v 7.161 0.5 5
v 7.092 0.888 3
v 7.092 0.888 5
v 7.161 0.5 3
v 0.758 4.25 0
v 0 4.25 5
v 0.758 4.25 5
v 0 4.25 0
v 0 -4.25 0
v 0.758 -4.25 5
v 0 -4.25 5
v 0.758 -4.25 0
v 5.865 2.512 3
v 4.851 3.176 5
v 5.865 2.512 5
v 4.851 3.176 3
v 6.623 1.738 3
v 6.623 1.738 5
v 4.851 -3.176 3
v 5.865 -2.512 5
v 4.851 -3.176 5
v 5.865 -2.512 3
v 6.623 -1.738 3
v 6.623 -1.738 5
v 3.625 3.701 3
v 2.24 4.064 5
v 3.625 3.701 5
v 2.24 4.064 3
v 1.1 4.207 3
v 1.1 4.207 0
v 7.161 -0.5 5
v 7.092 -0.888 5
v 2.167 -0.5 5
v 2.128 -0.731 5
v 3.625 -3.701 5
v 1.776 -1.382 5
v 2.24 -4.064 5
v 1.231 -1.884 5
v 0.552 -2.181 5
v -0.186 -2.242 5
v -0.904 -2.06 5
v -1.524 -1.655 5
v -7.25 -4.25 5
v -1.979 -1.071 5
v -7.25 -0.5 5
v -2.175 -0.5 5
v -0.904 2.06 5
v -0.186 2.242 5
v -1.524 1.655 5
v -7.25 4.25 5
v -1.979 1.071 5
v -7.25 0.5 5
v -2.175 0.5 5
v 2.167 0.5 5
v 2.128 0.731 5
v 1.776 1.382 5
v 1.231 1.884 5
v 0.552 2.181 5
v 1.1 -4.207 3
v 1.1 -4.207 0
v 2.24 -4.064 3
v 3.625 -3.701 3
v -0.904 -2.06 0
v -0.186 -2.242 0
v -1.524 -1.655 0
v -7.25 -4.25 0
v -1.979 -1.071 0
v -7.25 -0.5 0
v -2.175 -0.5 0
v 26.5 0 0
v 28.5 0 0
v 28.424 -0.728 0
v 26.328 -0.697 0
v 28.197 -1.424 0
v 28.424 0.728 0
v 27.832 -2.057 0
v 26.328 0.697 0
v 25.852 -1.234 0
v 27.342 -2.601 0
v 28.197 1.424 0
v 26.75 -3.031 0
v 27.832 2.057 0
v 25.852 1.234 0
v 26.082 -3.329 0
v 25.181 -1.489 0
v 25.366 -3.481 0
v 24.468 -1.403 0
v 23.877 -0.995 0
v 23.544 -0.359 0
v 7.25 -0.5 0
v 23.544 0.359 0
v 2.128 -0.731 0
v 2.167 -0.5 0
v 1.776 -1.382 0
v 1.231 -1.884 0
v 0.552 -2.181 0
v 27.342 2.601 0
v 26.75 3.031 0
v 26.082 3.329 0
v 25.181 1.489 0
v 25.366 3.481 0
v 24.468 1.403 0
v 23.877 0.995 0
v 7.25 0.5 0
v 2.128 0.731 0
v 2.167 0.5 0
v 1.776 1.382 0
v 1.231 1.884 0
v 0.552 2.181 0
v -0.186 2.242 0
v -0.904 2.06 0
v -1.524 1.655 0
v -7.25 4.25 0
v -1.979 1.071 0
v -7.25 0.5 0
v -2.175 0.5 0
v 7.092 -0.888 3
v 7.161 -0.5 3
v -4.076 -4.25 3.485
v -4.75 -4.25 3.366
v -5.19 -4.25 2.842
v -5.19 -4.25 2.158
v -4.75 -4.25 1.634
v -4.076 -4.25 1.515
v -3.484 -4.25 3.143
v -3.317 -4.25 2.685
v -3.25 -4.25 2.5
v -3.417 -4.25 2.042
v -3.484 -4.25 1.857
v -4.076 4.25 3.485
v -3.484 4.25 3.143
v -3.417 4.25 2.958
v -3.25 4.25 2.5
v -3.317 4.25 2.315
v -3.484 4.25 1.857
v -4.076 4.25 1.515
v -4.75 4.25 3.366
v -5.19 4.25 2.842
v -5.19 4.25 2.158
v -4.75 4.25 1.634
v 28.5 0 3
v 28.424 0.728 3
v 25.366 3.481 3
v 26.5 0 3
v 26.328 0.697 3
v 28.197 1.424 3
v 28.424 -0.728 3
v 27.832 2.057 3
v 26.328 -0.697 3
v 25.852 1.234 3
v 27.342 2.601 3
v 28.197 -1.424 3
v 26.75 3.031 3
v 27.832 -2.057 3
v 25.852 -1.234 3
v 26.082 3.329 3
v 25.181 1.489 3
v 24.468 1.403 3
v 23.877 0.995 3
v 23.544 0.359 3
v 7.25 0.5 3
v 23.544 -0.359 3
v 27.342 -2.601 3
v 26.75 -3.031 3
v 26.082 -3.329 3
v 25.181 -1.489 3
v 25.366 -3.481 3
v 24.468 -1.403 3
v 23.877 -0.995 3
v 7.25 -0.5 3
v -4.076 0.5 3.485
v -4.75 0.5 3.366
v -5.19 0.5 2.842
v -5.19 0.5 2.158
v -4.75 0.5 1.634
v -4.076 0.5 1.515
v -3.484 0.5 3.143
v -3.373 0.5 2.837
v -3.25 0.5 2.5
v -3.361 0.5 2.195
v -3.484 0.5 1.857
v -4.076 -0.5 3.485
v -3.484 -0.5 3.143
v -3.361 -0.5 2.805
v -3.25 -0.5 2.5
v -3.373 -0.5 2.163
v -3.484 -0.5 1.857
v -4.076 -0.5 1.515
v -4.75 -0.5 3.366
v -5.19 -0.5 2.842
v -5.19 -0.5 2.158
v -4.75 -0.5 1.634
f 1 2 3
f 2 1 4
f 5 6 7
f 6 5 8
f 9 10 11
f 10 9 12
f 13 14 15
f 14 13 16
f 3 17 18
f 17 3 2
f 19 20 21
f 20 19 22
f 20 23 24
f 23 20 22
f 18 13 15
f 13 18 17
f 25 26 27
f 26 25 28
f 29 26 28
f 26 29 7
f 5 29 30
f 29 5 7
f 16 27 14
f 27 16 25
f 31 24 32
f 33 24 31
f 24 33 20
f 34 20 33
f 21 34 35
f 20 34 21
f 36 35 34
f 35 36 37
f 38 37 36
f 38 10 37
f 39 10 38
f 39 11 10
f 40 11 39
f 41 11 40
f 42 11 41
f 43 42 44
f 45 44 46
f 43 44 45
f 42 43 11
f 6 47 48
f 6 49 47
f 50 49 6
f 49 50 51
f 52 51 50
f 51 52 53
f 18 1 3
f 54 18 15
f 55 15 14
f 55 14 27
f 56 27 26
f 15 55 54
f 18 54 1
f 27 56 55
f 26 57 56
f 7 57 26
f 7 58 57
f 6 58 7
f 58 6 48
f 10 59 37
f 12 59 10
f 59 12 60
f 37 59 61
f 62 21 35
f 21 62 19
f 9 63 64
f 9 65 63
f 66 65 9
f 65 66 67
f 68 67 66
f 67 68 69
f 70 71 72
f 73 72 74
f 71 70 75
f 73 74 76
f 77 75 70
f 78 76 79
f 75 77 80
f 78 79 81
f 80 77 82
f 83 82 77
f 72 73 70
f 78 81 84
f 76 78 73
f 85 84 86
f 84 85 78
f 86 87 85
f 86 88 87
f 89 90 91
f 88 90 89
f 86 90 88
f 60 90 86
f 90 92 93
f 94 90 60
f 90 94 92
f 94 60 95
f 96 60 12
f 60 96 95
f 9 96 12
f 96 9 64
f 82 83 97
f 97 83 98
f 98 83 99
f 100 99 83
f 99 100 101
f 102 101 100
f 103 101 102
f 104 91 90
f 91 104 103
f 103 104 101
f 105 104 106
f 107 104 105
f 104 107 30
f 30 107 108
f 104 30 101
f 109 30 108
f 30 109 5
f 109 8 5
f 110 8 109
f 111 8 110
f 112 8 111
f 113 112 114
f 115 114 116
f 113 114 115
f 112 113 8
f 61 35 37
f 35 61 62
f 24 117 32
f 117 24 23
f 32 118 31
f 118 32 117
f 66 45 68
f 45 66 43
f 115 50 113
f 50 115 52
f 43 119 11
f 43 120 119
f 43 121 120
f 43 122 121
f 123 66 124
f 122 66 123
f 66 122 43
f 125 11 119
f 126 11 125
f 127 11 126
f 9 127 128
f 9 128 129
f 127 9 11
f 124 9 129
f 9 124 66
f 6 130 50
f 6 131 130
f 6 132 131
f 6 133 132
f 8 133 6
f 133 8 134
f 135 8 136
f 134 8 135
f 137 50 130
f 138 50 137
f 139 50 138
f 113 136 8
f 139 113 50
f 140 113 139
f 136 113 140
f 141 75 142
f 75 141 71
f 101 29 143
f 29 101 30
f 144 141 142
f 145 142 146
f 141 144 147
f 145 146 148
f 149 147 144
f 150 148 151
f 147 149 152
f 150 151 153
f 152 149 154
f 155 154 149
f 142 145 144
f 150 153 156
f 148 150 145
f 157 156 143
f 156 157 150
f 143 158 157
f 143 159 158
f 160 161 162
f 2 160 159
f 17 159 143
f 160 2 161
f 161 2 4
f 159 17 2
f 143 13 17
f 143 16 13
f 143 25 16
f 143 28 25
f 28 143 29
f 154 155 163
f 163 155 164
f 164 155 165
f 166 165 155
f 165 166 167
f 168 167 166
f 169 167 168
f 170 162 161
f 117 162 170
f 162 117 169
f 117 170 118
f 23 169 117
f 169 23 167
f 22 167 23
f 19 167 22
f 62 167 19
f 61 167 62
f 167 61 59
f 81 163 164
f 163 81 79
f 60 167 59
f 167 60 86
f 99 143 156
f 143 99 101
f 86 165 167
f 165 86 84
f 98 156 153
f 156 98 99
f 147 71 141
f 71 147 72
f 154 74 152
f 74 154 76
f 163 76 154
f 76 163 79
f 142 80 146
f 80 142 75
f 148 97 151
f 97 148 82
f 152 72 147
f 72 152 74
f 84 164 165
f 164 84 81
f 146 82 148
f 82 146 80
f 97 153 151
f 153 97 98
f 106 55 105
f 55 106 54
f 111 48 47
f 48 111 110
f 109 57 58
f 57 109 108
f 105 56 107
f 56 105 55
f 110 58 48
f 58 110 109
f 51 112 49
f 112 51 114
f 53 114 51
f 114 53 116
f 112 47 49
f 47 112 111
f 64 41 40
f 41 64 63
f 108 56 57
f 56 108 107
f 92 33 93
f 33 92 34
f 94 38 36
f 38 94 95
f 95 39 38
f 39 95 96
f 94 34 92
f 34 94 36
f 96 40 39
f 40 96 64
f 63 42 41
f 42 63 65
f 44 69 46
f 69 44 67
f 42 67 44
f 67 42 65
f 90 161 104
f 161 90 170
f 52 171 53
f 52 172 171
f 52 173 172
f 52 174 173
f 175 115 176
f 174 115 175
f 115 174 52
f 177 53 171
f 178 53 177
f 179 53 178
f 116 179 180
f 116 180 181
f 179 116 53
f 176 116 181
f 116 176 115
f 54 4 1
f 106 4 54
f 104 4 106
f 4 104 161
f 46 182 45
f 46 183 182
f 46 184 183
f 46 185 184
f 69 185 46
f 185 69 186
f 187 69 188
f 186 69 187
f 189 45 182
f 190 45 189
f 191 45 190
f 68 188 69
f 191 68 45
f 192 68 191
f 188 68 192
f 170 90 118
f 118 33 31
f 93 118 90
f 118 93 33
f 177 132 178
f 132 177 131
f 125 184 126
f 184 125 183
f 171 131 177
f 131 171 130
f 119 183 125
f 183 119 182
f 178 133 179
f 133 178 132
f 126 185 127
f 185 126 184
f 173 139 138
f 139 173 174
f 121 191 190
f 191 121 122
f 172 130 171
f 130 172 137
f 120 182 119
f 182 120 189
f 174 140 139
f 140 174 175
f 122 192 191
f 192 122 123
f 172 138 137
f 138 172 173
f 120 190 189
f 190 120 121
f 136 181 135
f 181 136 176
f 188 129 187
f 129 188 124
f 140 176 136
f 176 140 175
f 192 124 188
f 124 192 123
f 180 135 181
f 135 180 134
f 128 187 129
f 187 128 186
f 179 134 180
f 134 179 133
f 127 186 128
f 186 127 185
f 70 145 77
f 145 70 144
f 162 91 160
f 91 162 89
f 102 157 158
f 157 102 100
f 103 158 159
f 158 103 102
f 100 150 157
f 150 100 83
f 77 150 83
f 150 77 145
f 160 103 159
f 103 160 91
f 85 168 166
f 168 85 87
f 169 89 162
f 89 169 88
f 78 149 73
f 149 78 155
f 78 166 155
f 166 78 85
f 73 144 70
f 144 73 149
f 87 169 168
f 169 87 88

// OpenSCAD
$fs=.75;

difference(){
	union() {
		union() {
			union() {
				union() {
					resize(newsize = [14.5000000000, 8.5000000000, 0]) {
						cylinder(d = 7.2500000000, h = 5);
					}
					translate(v = [-3.6250000000, 0.0000000000, 2.5000000000]) {
						translate(v = [-3.6250000000, -4.2500000000, -2.5000000000]) {
							cube(size = [7.2500000000, 8.5000000000, 5]);
						}
					}
				}
			}
		}
		hull() {
			cylinder(h = 3, r = 4.2500000000);
			translate(v = [25, 0, 0]) {
				union() {
					cylinder(h = 3, r = 3.5000000000);
				}
			}
		}
		translate(v = [25, 0, 0]) {
			union() {
				cylinder(h = 3, r = 3.5000000000);
			}
		}
	}
	/* Holes Below*/
	union(){
		union(){
			union(){
				cylinder(d = 4.5000000000, h = 5);
			}
			translate(v = [0, 0, 0]) {
				translate(v = [0.0000000000, 0, 2.5000000000]) {
					translate(v = [-7.2500000000, -0.5000000000, -2.5000000000]) {
						cube(size = [14.5000000000, 1, 5]);
					}
				}
			}
		}
		translate(v = [-4.2500000000, 0, 2.5000000000]) {
			rotate(a = [90, 0, 0]) {
				translate(v = [0, 0, -10.0000000000]) {
					cylinder(d = 2, h = 20);
				}
			}
		}
		hull(){
			translate(v = [25, 0, 0]){
				union(){
					cylinder(d = 3, h = 3);
				}
			}
		}
		translate(v = [25, 0, 0]){
			union(){
				cylinder(d = 3, h = 3);
			}
		}
	} /* End Holes */ 
}
/***********************************************
*********      SolidPython code:      **********
************************************************
 
from solid import *
from solid import extensions
from math import *

class Object:
    pass

servo = Object()
servo.shaft = Object()
servo.shaft.d = 4.5
servo.shaft.r = servo.shaft.d/2.
servo.shaft.h = 5
servoShaft = cylinder(d=servo.shaft.d,h=servo.shaft.h)

grip = Object()
grip.rx = servo.shaft.r+5
grip.ry = servo.shaft.r+2

hornGrip = ( cylinder(d=grip.rx, h=servo.shaft.h).resize([grip.rx*2,grip.ry*2,0])
	         + cube([grip.rx,2*grip.ry,servo.shaft.h]).align('x+','z-')
	         - servoShaft.set_hole()
             - cube([2*grip.rx, 1, servo.shaft.h]).align('z-').move(x=0).set_hole()
             - cylinder(d=2,h=20).center().rot(x=90).move(x=-(servo.shaft.r+grip.rx)/2.+.5,z=servo.shaft.h/2.).set_hole()
           )

horn = Object()
horn.height = 3
horn.lenght = 25
horn.end = Object()
horn.end.hole = 3
horn.end.r = horn.end.hole/2.+2
hornEnd = ( cylinder(r=horn.end.r, h = horn.height)
	       - cylinder(d=horn.end.hole, h = horn.height).set_hole()).move(x=horn.lenght)

hornBody = hull(cylinder(r=grip.ry, h=horn.height), hornEnd)

scene = hornGrip + hornBody + hornEnd


scad_render_to_file(scene, 'preview.scad', '$fs=.75;')
 
 
************************************************/
